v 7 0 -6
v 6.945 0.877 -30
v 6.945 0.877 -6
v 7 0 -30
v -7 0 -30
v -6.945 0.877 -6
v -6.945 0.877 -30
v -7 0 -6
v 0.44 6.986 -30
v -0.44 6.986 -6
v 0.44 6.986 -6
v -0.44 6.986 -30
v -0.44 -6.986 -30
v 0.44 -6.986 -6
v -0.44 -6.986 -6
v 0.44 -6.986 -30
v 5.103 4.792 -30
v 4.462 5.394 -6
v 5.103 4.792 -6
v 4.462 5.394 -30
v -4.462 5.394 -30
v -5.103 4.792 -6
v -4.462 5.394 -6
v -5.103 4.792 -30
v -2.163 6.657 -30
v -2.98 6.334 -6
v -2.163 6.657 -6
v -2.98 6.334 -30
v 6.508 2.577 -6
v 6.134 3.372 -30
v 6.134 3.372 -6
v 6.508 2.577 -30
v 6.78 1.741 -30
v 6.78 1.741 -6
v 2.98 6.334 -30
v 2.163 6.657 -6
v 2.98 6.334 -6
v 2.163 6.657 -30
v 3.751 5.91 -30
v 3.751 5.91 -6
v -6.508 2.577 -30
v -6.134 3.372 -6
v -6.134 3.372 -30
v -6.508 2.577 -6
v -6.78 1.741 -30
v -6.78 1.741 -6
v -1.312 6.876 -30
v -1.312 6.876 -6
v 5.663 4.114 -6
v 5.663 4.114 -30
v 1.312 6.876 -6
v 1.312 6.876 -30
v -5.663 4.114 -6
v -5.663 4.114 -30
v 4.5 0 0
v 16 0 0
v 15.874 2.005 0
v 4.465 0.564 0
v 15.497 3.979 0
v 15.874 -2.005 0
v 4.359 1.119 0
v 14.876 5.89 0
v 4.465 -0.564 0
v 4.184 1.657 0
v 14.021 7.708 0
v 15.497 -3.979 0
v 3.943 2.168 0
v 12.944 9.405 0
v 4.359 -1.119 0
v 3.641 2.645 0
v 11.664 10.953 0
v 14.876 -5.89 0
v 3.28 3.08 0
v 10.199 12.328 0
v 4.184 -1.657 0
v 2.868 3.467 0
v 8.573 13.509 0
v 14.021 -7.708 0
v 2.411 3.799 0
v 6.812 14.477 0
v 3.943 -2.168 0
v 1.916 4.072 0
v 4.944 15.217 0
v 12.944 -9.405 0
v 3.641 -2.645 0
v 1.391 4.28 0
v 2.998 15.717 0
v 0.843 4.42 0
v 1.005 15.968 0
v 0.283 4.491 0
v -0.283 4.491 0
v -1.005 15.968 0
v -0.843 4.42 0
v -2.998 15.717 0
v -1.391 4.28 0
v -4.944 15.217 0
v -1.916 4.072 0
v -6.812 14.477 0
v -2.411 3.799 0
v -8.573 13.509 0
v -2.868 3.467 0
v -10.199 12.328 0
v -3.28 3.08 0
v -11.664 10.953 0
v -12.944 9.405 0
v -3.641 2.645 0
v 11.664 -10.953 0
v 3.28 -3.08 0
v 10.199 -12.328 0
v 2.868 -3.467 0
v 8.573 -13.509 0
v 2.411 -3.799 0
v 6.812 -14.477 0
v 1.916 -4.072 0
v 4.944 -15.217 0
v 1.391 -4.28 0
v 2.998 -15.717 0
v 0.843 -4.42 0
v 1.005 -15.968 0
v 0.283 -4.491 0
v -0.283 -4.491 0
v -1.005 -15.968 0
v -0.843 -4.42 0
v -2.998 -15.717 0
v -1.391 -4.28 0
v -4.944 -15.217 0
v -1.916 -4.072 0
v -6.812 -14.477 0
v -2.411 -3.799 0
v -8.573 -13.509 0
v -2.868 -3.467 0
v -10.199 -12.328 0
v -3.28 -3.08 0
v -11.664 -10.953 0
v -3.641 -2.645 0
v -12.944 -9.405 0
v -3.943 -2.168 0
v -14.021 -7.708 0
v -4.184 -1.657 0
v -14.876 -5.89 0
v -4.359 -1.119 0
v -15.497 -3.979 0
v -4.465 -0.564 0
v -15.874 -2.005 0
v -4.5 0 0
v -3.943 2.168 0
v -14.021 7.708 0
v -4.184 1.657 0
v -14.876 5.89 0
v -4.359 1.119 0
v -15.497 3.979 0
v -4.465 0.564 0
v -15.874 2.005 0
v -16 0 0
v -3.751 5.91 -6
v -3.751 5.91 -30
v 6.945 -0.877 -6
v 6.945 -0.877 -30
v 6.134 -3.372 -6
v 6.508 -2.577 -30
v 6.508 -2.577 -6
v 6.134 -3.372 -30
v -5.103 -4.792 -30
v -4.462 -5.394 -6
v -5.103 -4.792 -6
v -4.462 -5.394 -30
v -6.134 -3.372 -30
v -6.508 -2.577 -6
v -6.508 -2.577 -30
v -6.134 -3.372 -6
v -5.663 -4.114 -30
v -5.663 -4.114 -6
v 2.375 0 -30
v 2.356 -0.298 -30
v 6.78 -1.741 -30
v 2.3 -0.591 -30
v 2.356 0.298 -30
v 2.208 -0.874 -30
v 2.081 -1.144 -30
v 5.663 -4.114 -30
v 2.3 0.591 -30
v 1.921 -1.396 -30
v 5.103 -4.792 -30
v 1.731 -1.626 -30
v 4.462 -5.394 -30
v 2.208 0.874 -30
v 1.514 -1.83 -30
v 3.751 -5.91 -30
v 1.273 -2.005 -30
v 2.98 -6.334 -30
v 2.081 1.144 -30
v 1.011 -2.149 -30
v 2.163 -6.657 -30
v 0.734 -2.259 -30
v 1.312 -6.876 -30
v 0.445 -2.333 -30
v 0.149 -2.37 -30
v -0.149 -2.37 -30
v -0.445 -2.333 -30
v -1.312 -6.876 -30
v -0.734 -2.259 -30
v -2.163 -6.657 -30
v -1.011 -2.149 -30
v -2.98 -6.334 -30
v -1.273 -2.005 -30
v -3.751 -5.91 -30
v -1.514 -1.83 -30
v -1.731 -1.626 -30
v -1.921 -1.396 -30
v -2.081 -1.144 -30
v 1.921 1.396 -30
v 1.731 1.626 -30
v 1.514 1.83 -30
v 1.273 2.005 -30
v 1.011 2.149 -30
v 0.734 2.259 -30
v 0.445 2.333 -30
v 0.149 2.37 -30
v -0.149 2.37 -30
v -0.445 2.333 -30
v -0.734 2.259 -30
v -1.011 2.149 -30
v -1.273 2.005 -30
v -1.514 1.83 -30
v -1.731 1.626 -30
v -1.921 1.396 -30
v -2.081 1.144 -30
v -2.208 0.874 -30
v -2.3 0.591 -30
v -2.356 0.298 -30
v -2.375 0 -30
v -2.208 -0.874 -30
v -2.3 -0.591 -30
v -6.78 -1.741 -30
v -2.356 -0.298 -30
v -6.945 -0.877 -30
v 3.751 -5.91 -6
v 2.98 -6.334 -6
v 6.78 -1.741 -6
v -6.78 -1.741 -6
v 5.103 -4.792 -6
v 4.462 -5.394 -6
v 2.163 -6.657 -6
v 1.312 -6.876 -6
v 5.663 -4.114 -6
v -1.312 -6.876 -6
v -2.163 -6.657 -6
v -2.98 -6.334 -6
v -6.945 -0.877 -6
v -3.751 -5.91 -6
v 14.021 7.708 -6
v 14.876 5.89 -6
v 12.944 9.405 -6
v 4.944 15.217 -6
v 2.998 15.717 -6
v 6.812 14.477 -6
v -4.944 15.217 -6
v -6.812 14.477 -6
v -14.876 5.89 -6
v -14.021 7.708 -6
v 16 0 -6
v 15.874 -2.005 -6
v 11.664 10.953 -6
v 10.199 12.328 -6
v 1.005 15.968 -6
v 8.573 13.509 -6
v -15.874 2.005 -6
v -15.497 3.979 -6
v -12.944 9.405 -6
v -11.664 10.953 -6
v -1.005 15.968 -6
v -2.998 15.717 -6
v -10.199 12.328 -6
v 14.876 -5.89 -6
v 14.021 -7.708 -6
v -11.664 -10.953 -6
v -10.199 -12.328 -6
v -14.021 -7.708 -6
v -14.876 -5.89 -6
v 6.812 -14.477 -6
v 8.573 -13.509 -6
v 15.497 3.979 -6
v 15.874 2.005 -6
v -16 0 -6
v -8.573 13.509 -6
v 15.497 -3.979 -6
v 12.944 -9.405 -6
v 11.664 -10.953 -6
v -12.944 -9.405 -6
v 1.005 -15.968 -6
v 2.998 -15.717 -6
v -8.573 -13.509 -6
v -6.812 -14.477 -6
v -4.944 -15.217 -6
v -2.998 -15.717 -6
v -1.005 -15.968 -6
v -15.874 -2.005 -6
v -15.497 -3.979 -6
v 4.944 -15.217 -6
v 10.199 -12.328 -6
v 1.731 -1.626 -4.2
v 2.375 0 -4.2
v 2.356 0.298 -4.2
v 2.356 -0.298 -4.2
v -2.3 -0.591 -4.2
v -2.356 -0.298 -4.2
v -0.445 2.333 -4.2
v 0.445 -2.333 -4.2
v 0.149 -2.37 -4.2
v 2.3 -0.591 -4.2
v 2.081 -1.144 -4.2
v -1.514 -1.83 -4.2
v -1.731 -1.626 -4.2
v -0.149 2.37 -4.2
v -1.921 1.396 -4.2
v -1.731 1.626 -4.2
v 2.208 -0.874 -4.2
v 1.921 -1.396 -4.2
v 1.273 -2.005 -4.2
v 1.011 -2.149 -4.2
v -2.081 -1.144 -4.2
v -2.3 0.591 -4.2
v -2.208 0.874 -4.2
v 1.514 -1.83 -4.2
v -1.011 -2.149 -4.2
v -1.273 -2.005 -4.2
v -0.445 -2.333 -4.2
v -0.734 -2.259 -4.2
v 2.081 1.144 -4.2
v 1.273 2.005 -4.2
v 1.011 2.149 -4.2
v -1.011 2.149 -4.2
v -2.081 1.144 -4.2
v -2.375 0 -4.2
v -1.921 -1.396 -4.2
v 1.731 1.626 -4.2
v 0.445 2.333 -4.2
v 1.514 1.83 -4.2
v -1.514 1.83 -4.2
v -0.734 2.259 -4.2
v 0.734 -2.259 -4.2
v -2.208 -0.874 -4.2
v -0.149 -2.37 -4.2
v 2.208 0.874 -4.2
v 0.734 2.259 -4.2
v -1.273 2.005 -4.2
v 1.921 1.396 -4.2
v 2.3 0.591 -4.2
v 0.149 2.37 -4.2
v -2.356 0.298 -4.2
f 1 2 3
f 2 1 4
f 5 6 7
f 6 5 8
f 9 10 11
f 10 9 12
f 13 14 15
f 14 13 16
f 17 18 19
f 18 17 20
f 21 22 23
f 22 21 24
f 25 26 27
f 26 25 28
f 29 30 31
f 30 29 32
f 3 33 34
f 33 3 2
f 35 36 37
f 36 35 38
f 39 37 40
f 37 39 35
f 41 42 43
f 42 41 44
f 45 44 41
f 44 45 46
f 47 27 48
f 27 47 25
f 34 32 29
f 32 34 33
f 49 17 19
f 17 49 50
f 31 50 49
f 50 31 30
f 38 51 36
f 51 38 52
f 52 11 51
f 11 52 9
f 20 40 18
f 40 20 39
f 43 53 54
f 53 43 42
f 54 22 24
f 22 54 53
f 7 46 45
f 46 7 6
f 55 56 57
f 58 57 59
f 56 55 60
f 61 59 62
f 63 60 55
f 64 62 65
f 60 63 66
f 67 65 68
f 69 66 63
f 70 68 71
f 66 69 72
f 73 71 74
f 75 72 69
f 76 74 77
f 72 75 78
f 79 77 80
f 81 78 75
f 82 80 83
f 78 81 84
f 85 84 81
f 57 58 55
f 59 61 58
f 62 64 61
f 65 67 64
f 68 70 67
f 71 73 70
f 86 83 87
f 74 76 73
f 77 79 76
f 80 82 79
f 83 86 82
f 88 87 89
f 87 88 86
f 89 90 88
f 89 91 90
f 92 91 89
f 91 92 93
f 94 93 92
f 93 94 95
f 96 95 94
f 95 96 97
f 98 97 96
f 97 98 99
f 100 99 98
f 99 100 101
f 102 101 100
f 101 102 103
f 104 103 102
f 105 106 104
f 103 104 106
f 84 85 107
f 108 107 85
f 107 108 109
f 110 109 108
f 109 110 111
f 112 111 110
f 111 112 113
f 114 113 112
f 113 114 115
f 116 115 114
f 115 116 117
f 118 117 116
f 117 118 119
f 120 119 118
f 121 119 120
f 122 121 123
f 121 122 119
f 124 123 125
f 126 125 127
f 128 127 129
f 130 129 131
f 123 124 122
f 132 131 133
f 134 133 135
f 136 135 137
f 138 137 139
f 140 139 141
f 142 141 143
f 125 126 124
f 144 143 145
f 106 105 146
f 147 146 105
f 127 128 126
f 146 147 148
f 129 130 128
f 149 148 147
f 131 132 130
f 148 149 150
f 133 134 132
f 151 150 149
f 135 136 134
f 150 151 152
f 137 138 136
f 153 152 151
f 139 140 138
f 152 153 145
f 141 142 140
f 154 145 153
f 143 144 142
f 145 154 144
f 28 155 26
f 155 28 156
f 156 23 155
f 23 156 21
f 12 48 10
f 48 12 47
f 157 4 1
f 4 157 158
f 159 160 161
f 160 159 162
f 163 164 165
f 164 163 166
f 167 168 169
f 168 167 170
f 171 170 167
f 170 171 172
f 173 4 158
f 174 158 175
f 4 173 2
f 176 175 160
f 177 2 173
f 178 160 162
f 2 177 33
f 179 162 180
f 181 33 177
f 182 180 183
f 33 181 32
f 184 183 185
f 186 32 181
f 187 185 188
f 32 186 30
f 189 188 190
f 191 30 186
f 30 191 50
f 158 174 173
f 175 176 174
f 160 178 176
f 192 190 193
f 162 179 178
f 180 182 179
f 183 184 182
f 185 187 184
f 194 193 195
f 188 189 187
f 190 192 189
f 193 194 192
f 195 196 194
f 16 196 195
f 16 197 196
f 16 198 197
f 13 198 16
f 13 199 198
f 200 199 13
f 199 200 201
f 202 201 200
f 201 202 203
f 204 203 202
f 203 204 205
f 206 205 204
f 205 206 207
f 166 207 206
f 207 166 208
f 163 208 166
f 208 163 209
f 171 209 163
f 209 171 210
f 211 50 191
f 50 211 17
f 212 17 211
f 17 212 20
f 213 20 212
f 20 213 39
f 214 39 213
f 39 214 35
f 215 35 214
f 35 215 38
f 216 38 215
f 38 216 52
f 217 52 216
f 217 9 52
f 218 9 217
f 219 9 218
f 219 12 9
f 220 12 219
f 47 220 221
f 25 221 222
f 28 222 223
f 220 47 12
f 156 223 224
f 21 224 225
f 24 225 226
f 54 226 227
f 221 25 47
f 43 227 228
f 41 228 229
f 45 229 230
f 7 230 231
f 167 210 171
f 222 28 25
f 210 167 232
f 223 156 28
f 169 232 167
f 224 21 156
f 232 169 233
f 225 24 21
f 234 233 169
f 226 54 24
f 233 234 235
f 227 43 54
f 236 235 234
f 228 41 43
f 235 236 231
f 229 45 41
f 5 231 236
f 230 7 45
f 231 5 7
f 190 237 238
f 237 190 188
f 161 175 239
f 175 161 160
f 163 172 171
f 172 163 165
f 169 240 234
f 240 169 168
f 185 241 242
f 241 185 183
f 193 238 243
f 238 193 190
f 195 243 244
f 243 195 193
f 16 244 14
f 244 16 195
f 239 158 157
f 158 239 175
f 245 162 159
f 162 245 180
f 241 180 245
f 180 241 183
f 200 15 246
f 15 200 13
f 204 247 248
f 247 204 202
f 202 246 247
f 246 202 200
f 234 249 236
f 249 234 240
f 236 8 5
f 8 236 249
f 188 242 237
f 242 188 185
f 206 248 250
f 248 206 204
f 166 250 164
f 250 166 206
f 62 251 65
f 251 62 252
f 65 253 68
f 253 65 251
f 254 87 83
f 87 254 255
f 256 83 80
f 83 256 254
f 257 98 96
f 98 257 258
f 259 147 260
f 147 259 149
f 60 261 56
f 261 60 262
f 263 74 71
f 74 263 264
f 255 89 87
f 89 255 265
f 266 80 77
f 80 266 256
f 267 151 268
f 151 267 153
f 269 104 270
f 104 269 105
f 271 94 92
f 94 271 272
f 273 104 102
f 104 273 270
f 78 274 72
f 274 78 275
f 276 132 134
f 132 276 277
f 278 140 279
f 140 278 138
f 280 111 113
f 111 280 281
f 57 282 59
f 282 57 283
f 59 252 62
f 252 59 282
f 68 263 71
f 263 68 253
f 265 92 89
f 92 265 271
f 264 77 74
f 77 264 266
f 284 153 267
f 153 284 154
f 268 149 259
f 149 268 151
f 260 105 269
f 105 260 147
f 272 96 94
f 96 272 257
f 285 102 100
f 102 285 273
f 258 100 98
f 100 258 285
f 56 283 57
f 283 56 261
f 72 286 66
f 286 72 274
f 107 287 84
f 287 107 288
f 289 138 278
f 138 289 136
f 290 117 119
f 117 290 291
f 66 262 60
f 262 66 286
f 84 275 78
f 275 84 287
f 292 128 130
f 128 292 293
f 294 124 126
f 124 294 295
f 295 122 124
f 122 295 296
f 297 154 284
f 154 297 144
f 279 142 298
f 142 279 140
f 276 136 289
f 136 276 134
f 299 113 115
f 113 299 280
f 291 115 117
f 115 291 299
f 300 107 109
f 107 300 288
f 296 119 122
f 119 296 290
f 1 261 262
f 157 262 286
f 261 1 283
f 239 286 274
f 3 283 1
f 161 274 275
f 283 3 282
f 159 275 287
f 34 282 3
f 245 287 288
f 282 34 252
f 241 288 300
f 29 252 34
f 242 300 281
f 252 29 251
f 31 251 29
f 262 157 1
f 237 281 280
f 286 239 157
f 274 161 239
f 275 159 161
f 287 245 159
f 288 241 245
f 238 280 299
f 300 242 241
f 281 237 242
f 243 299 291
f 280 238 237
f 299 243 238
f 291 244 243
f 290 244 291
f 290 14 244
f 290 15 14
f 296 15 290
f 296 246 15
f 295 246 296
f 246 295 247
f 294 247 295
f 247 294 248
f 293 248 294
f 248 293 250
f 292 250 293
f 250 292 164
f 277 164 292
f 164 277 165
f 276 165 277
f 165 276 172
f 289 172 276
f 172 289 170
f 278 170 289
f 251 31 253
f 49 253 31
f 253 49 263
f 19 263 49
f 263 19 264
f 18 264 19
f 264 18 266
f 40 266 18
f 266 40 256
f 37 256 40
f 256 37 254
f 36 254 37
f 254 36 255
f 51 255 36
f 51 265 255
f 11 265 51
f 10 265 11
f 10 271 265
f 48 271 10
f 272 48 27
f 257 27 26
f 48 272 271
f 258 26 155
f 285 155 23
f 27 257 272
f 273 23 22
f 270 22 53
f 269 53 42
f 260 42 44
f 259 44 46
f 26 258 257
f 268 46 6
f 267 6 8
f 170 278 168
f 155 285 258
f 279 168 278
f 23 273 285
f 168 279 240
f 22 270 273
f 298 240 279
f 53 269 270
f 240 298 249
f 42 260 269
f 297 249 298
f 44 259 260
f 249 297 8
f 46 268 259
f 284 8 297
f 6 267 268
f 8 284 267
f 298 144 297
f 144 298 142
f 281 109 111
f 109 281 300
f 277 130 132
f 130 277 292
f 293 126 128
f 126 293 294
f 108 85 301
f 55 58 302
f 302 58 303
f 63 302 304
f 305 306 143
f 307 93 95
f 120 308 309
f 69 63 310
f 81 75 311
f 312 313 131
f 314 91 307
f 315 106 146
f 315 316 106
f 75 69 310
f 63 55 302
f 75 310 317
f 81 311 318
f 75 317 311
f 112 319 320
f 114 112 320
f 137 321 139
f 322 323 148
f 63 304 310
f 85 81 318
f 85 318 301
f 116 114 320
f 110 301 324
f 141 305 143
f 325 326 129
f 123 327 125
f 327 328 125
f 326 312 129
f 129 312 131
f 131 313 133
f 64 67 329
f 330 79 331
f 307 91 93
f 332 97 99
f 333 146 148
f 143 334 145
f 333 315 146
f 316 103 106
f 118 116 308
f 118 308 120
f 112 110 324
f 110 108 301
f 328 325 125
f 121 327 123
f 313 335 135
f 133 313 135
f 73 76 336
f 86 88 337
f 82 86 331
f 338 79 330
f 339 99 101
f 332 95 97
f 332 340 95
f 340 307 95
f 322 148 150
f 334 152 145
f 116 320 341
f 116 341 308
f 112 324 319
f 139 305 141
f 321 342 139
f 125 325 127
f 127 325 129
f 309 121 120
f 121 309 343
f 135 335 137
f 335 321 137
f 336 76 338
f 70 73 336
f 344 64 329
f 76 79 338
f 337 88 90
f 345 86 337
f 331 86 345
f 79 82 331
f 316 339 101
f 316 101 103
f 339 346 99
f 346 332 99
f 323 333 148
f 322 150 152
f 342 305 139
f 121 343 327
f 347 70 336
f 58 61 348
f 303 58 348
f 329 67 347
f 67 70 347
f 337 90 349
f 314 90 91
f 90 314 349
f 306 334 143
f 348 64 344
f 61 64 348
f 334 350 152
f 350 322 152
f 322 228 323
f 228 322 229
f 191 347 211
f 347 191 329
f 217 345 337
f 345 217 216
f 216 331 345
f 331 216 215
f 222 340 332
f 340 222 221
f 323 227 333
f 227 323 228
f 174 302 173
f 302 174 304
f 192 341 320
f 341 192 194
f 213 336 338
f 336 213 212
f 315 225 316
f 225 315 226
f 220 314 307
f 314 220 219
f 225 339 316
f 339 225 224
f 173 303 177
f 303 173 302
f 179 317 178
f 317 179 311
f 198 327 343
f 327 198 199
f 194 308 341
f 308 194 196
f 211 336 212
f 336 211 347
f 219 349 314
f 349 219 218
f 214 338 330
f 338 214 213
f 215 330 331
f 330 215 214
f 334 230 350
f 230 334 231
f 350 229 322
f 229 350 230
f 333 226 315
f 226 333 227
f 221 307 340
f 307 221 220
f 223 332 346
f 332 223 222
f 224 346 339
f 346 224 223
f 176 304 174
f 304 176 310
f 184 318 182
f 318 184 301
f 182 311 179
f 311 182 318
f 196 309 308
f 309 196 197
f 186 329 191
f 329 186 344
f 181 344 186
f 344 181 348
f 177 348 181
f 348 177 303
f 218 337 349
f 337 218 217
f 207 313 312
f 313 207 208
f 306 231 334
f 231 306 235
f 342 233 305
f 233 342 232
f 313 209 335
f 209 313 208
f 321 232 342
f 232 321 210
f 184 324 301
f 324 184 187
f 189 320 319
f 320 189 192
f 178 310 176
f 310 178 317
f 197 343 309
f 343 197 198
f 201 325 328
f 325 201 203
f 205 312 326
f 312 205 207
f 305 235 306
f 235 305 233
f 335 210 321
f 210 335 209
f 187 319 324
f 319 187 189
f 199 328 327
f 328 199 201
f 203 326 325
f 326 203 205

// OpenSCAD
$fn = 50;


difference() {
	union() {
		translate(v = [0, 0, -30.0000000000]) {
			cylinder(h = 30, r = 7.0000000000);
		}
		translate(v = [0, 0, -6.0000000000]) {
			cylinder(h = 6, r = 16.0000000000);
		}
	}
	union() {
		translate(v = [0, 0, 0]) {
			rotate(a = [0, 0, 0]) {
				difference() {
					union() {
						#translate(v = [0, 0, -30.0000000000]) {
							cylinder(h = 30, r = 2.2500000000);
						}
						#translate(v = [0, 0, -4.2000000000]) {
							cylinder(h = 4.2000000000, r1 = 2.3750000000, r2 = 4.5000000000);
						}
						#translate(v = [0, 0, -30.0000000000]) {
							cylinder(h = 30, r = 2.3750000000);
						}
						#translate(v = [0, 0, -30.0000000000]) {
							cylinder(h = 30, r = 2.2500000000);
						}
					}
					union();
				}
			}
		}
	}
}
